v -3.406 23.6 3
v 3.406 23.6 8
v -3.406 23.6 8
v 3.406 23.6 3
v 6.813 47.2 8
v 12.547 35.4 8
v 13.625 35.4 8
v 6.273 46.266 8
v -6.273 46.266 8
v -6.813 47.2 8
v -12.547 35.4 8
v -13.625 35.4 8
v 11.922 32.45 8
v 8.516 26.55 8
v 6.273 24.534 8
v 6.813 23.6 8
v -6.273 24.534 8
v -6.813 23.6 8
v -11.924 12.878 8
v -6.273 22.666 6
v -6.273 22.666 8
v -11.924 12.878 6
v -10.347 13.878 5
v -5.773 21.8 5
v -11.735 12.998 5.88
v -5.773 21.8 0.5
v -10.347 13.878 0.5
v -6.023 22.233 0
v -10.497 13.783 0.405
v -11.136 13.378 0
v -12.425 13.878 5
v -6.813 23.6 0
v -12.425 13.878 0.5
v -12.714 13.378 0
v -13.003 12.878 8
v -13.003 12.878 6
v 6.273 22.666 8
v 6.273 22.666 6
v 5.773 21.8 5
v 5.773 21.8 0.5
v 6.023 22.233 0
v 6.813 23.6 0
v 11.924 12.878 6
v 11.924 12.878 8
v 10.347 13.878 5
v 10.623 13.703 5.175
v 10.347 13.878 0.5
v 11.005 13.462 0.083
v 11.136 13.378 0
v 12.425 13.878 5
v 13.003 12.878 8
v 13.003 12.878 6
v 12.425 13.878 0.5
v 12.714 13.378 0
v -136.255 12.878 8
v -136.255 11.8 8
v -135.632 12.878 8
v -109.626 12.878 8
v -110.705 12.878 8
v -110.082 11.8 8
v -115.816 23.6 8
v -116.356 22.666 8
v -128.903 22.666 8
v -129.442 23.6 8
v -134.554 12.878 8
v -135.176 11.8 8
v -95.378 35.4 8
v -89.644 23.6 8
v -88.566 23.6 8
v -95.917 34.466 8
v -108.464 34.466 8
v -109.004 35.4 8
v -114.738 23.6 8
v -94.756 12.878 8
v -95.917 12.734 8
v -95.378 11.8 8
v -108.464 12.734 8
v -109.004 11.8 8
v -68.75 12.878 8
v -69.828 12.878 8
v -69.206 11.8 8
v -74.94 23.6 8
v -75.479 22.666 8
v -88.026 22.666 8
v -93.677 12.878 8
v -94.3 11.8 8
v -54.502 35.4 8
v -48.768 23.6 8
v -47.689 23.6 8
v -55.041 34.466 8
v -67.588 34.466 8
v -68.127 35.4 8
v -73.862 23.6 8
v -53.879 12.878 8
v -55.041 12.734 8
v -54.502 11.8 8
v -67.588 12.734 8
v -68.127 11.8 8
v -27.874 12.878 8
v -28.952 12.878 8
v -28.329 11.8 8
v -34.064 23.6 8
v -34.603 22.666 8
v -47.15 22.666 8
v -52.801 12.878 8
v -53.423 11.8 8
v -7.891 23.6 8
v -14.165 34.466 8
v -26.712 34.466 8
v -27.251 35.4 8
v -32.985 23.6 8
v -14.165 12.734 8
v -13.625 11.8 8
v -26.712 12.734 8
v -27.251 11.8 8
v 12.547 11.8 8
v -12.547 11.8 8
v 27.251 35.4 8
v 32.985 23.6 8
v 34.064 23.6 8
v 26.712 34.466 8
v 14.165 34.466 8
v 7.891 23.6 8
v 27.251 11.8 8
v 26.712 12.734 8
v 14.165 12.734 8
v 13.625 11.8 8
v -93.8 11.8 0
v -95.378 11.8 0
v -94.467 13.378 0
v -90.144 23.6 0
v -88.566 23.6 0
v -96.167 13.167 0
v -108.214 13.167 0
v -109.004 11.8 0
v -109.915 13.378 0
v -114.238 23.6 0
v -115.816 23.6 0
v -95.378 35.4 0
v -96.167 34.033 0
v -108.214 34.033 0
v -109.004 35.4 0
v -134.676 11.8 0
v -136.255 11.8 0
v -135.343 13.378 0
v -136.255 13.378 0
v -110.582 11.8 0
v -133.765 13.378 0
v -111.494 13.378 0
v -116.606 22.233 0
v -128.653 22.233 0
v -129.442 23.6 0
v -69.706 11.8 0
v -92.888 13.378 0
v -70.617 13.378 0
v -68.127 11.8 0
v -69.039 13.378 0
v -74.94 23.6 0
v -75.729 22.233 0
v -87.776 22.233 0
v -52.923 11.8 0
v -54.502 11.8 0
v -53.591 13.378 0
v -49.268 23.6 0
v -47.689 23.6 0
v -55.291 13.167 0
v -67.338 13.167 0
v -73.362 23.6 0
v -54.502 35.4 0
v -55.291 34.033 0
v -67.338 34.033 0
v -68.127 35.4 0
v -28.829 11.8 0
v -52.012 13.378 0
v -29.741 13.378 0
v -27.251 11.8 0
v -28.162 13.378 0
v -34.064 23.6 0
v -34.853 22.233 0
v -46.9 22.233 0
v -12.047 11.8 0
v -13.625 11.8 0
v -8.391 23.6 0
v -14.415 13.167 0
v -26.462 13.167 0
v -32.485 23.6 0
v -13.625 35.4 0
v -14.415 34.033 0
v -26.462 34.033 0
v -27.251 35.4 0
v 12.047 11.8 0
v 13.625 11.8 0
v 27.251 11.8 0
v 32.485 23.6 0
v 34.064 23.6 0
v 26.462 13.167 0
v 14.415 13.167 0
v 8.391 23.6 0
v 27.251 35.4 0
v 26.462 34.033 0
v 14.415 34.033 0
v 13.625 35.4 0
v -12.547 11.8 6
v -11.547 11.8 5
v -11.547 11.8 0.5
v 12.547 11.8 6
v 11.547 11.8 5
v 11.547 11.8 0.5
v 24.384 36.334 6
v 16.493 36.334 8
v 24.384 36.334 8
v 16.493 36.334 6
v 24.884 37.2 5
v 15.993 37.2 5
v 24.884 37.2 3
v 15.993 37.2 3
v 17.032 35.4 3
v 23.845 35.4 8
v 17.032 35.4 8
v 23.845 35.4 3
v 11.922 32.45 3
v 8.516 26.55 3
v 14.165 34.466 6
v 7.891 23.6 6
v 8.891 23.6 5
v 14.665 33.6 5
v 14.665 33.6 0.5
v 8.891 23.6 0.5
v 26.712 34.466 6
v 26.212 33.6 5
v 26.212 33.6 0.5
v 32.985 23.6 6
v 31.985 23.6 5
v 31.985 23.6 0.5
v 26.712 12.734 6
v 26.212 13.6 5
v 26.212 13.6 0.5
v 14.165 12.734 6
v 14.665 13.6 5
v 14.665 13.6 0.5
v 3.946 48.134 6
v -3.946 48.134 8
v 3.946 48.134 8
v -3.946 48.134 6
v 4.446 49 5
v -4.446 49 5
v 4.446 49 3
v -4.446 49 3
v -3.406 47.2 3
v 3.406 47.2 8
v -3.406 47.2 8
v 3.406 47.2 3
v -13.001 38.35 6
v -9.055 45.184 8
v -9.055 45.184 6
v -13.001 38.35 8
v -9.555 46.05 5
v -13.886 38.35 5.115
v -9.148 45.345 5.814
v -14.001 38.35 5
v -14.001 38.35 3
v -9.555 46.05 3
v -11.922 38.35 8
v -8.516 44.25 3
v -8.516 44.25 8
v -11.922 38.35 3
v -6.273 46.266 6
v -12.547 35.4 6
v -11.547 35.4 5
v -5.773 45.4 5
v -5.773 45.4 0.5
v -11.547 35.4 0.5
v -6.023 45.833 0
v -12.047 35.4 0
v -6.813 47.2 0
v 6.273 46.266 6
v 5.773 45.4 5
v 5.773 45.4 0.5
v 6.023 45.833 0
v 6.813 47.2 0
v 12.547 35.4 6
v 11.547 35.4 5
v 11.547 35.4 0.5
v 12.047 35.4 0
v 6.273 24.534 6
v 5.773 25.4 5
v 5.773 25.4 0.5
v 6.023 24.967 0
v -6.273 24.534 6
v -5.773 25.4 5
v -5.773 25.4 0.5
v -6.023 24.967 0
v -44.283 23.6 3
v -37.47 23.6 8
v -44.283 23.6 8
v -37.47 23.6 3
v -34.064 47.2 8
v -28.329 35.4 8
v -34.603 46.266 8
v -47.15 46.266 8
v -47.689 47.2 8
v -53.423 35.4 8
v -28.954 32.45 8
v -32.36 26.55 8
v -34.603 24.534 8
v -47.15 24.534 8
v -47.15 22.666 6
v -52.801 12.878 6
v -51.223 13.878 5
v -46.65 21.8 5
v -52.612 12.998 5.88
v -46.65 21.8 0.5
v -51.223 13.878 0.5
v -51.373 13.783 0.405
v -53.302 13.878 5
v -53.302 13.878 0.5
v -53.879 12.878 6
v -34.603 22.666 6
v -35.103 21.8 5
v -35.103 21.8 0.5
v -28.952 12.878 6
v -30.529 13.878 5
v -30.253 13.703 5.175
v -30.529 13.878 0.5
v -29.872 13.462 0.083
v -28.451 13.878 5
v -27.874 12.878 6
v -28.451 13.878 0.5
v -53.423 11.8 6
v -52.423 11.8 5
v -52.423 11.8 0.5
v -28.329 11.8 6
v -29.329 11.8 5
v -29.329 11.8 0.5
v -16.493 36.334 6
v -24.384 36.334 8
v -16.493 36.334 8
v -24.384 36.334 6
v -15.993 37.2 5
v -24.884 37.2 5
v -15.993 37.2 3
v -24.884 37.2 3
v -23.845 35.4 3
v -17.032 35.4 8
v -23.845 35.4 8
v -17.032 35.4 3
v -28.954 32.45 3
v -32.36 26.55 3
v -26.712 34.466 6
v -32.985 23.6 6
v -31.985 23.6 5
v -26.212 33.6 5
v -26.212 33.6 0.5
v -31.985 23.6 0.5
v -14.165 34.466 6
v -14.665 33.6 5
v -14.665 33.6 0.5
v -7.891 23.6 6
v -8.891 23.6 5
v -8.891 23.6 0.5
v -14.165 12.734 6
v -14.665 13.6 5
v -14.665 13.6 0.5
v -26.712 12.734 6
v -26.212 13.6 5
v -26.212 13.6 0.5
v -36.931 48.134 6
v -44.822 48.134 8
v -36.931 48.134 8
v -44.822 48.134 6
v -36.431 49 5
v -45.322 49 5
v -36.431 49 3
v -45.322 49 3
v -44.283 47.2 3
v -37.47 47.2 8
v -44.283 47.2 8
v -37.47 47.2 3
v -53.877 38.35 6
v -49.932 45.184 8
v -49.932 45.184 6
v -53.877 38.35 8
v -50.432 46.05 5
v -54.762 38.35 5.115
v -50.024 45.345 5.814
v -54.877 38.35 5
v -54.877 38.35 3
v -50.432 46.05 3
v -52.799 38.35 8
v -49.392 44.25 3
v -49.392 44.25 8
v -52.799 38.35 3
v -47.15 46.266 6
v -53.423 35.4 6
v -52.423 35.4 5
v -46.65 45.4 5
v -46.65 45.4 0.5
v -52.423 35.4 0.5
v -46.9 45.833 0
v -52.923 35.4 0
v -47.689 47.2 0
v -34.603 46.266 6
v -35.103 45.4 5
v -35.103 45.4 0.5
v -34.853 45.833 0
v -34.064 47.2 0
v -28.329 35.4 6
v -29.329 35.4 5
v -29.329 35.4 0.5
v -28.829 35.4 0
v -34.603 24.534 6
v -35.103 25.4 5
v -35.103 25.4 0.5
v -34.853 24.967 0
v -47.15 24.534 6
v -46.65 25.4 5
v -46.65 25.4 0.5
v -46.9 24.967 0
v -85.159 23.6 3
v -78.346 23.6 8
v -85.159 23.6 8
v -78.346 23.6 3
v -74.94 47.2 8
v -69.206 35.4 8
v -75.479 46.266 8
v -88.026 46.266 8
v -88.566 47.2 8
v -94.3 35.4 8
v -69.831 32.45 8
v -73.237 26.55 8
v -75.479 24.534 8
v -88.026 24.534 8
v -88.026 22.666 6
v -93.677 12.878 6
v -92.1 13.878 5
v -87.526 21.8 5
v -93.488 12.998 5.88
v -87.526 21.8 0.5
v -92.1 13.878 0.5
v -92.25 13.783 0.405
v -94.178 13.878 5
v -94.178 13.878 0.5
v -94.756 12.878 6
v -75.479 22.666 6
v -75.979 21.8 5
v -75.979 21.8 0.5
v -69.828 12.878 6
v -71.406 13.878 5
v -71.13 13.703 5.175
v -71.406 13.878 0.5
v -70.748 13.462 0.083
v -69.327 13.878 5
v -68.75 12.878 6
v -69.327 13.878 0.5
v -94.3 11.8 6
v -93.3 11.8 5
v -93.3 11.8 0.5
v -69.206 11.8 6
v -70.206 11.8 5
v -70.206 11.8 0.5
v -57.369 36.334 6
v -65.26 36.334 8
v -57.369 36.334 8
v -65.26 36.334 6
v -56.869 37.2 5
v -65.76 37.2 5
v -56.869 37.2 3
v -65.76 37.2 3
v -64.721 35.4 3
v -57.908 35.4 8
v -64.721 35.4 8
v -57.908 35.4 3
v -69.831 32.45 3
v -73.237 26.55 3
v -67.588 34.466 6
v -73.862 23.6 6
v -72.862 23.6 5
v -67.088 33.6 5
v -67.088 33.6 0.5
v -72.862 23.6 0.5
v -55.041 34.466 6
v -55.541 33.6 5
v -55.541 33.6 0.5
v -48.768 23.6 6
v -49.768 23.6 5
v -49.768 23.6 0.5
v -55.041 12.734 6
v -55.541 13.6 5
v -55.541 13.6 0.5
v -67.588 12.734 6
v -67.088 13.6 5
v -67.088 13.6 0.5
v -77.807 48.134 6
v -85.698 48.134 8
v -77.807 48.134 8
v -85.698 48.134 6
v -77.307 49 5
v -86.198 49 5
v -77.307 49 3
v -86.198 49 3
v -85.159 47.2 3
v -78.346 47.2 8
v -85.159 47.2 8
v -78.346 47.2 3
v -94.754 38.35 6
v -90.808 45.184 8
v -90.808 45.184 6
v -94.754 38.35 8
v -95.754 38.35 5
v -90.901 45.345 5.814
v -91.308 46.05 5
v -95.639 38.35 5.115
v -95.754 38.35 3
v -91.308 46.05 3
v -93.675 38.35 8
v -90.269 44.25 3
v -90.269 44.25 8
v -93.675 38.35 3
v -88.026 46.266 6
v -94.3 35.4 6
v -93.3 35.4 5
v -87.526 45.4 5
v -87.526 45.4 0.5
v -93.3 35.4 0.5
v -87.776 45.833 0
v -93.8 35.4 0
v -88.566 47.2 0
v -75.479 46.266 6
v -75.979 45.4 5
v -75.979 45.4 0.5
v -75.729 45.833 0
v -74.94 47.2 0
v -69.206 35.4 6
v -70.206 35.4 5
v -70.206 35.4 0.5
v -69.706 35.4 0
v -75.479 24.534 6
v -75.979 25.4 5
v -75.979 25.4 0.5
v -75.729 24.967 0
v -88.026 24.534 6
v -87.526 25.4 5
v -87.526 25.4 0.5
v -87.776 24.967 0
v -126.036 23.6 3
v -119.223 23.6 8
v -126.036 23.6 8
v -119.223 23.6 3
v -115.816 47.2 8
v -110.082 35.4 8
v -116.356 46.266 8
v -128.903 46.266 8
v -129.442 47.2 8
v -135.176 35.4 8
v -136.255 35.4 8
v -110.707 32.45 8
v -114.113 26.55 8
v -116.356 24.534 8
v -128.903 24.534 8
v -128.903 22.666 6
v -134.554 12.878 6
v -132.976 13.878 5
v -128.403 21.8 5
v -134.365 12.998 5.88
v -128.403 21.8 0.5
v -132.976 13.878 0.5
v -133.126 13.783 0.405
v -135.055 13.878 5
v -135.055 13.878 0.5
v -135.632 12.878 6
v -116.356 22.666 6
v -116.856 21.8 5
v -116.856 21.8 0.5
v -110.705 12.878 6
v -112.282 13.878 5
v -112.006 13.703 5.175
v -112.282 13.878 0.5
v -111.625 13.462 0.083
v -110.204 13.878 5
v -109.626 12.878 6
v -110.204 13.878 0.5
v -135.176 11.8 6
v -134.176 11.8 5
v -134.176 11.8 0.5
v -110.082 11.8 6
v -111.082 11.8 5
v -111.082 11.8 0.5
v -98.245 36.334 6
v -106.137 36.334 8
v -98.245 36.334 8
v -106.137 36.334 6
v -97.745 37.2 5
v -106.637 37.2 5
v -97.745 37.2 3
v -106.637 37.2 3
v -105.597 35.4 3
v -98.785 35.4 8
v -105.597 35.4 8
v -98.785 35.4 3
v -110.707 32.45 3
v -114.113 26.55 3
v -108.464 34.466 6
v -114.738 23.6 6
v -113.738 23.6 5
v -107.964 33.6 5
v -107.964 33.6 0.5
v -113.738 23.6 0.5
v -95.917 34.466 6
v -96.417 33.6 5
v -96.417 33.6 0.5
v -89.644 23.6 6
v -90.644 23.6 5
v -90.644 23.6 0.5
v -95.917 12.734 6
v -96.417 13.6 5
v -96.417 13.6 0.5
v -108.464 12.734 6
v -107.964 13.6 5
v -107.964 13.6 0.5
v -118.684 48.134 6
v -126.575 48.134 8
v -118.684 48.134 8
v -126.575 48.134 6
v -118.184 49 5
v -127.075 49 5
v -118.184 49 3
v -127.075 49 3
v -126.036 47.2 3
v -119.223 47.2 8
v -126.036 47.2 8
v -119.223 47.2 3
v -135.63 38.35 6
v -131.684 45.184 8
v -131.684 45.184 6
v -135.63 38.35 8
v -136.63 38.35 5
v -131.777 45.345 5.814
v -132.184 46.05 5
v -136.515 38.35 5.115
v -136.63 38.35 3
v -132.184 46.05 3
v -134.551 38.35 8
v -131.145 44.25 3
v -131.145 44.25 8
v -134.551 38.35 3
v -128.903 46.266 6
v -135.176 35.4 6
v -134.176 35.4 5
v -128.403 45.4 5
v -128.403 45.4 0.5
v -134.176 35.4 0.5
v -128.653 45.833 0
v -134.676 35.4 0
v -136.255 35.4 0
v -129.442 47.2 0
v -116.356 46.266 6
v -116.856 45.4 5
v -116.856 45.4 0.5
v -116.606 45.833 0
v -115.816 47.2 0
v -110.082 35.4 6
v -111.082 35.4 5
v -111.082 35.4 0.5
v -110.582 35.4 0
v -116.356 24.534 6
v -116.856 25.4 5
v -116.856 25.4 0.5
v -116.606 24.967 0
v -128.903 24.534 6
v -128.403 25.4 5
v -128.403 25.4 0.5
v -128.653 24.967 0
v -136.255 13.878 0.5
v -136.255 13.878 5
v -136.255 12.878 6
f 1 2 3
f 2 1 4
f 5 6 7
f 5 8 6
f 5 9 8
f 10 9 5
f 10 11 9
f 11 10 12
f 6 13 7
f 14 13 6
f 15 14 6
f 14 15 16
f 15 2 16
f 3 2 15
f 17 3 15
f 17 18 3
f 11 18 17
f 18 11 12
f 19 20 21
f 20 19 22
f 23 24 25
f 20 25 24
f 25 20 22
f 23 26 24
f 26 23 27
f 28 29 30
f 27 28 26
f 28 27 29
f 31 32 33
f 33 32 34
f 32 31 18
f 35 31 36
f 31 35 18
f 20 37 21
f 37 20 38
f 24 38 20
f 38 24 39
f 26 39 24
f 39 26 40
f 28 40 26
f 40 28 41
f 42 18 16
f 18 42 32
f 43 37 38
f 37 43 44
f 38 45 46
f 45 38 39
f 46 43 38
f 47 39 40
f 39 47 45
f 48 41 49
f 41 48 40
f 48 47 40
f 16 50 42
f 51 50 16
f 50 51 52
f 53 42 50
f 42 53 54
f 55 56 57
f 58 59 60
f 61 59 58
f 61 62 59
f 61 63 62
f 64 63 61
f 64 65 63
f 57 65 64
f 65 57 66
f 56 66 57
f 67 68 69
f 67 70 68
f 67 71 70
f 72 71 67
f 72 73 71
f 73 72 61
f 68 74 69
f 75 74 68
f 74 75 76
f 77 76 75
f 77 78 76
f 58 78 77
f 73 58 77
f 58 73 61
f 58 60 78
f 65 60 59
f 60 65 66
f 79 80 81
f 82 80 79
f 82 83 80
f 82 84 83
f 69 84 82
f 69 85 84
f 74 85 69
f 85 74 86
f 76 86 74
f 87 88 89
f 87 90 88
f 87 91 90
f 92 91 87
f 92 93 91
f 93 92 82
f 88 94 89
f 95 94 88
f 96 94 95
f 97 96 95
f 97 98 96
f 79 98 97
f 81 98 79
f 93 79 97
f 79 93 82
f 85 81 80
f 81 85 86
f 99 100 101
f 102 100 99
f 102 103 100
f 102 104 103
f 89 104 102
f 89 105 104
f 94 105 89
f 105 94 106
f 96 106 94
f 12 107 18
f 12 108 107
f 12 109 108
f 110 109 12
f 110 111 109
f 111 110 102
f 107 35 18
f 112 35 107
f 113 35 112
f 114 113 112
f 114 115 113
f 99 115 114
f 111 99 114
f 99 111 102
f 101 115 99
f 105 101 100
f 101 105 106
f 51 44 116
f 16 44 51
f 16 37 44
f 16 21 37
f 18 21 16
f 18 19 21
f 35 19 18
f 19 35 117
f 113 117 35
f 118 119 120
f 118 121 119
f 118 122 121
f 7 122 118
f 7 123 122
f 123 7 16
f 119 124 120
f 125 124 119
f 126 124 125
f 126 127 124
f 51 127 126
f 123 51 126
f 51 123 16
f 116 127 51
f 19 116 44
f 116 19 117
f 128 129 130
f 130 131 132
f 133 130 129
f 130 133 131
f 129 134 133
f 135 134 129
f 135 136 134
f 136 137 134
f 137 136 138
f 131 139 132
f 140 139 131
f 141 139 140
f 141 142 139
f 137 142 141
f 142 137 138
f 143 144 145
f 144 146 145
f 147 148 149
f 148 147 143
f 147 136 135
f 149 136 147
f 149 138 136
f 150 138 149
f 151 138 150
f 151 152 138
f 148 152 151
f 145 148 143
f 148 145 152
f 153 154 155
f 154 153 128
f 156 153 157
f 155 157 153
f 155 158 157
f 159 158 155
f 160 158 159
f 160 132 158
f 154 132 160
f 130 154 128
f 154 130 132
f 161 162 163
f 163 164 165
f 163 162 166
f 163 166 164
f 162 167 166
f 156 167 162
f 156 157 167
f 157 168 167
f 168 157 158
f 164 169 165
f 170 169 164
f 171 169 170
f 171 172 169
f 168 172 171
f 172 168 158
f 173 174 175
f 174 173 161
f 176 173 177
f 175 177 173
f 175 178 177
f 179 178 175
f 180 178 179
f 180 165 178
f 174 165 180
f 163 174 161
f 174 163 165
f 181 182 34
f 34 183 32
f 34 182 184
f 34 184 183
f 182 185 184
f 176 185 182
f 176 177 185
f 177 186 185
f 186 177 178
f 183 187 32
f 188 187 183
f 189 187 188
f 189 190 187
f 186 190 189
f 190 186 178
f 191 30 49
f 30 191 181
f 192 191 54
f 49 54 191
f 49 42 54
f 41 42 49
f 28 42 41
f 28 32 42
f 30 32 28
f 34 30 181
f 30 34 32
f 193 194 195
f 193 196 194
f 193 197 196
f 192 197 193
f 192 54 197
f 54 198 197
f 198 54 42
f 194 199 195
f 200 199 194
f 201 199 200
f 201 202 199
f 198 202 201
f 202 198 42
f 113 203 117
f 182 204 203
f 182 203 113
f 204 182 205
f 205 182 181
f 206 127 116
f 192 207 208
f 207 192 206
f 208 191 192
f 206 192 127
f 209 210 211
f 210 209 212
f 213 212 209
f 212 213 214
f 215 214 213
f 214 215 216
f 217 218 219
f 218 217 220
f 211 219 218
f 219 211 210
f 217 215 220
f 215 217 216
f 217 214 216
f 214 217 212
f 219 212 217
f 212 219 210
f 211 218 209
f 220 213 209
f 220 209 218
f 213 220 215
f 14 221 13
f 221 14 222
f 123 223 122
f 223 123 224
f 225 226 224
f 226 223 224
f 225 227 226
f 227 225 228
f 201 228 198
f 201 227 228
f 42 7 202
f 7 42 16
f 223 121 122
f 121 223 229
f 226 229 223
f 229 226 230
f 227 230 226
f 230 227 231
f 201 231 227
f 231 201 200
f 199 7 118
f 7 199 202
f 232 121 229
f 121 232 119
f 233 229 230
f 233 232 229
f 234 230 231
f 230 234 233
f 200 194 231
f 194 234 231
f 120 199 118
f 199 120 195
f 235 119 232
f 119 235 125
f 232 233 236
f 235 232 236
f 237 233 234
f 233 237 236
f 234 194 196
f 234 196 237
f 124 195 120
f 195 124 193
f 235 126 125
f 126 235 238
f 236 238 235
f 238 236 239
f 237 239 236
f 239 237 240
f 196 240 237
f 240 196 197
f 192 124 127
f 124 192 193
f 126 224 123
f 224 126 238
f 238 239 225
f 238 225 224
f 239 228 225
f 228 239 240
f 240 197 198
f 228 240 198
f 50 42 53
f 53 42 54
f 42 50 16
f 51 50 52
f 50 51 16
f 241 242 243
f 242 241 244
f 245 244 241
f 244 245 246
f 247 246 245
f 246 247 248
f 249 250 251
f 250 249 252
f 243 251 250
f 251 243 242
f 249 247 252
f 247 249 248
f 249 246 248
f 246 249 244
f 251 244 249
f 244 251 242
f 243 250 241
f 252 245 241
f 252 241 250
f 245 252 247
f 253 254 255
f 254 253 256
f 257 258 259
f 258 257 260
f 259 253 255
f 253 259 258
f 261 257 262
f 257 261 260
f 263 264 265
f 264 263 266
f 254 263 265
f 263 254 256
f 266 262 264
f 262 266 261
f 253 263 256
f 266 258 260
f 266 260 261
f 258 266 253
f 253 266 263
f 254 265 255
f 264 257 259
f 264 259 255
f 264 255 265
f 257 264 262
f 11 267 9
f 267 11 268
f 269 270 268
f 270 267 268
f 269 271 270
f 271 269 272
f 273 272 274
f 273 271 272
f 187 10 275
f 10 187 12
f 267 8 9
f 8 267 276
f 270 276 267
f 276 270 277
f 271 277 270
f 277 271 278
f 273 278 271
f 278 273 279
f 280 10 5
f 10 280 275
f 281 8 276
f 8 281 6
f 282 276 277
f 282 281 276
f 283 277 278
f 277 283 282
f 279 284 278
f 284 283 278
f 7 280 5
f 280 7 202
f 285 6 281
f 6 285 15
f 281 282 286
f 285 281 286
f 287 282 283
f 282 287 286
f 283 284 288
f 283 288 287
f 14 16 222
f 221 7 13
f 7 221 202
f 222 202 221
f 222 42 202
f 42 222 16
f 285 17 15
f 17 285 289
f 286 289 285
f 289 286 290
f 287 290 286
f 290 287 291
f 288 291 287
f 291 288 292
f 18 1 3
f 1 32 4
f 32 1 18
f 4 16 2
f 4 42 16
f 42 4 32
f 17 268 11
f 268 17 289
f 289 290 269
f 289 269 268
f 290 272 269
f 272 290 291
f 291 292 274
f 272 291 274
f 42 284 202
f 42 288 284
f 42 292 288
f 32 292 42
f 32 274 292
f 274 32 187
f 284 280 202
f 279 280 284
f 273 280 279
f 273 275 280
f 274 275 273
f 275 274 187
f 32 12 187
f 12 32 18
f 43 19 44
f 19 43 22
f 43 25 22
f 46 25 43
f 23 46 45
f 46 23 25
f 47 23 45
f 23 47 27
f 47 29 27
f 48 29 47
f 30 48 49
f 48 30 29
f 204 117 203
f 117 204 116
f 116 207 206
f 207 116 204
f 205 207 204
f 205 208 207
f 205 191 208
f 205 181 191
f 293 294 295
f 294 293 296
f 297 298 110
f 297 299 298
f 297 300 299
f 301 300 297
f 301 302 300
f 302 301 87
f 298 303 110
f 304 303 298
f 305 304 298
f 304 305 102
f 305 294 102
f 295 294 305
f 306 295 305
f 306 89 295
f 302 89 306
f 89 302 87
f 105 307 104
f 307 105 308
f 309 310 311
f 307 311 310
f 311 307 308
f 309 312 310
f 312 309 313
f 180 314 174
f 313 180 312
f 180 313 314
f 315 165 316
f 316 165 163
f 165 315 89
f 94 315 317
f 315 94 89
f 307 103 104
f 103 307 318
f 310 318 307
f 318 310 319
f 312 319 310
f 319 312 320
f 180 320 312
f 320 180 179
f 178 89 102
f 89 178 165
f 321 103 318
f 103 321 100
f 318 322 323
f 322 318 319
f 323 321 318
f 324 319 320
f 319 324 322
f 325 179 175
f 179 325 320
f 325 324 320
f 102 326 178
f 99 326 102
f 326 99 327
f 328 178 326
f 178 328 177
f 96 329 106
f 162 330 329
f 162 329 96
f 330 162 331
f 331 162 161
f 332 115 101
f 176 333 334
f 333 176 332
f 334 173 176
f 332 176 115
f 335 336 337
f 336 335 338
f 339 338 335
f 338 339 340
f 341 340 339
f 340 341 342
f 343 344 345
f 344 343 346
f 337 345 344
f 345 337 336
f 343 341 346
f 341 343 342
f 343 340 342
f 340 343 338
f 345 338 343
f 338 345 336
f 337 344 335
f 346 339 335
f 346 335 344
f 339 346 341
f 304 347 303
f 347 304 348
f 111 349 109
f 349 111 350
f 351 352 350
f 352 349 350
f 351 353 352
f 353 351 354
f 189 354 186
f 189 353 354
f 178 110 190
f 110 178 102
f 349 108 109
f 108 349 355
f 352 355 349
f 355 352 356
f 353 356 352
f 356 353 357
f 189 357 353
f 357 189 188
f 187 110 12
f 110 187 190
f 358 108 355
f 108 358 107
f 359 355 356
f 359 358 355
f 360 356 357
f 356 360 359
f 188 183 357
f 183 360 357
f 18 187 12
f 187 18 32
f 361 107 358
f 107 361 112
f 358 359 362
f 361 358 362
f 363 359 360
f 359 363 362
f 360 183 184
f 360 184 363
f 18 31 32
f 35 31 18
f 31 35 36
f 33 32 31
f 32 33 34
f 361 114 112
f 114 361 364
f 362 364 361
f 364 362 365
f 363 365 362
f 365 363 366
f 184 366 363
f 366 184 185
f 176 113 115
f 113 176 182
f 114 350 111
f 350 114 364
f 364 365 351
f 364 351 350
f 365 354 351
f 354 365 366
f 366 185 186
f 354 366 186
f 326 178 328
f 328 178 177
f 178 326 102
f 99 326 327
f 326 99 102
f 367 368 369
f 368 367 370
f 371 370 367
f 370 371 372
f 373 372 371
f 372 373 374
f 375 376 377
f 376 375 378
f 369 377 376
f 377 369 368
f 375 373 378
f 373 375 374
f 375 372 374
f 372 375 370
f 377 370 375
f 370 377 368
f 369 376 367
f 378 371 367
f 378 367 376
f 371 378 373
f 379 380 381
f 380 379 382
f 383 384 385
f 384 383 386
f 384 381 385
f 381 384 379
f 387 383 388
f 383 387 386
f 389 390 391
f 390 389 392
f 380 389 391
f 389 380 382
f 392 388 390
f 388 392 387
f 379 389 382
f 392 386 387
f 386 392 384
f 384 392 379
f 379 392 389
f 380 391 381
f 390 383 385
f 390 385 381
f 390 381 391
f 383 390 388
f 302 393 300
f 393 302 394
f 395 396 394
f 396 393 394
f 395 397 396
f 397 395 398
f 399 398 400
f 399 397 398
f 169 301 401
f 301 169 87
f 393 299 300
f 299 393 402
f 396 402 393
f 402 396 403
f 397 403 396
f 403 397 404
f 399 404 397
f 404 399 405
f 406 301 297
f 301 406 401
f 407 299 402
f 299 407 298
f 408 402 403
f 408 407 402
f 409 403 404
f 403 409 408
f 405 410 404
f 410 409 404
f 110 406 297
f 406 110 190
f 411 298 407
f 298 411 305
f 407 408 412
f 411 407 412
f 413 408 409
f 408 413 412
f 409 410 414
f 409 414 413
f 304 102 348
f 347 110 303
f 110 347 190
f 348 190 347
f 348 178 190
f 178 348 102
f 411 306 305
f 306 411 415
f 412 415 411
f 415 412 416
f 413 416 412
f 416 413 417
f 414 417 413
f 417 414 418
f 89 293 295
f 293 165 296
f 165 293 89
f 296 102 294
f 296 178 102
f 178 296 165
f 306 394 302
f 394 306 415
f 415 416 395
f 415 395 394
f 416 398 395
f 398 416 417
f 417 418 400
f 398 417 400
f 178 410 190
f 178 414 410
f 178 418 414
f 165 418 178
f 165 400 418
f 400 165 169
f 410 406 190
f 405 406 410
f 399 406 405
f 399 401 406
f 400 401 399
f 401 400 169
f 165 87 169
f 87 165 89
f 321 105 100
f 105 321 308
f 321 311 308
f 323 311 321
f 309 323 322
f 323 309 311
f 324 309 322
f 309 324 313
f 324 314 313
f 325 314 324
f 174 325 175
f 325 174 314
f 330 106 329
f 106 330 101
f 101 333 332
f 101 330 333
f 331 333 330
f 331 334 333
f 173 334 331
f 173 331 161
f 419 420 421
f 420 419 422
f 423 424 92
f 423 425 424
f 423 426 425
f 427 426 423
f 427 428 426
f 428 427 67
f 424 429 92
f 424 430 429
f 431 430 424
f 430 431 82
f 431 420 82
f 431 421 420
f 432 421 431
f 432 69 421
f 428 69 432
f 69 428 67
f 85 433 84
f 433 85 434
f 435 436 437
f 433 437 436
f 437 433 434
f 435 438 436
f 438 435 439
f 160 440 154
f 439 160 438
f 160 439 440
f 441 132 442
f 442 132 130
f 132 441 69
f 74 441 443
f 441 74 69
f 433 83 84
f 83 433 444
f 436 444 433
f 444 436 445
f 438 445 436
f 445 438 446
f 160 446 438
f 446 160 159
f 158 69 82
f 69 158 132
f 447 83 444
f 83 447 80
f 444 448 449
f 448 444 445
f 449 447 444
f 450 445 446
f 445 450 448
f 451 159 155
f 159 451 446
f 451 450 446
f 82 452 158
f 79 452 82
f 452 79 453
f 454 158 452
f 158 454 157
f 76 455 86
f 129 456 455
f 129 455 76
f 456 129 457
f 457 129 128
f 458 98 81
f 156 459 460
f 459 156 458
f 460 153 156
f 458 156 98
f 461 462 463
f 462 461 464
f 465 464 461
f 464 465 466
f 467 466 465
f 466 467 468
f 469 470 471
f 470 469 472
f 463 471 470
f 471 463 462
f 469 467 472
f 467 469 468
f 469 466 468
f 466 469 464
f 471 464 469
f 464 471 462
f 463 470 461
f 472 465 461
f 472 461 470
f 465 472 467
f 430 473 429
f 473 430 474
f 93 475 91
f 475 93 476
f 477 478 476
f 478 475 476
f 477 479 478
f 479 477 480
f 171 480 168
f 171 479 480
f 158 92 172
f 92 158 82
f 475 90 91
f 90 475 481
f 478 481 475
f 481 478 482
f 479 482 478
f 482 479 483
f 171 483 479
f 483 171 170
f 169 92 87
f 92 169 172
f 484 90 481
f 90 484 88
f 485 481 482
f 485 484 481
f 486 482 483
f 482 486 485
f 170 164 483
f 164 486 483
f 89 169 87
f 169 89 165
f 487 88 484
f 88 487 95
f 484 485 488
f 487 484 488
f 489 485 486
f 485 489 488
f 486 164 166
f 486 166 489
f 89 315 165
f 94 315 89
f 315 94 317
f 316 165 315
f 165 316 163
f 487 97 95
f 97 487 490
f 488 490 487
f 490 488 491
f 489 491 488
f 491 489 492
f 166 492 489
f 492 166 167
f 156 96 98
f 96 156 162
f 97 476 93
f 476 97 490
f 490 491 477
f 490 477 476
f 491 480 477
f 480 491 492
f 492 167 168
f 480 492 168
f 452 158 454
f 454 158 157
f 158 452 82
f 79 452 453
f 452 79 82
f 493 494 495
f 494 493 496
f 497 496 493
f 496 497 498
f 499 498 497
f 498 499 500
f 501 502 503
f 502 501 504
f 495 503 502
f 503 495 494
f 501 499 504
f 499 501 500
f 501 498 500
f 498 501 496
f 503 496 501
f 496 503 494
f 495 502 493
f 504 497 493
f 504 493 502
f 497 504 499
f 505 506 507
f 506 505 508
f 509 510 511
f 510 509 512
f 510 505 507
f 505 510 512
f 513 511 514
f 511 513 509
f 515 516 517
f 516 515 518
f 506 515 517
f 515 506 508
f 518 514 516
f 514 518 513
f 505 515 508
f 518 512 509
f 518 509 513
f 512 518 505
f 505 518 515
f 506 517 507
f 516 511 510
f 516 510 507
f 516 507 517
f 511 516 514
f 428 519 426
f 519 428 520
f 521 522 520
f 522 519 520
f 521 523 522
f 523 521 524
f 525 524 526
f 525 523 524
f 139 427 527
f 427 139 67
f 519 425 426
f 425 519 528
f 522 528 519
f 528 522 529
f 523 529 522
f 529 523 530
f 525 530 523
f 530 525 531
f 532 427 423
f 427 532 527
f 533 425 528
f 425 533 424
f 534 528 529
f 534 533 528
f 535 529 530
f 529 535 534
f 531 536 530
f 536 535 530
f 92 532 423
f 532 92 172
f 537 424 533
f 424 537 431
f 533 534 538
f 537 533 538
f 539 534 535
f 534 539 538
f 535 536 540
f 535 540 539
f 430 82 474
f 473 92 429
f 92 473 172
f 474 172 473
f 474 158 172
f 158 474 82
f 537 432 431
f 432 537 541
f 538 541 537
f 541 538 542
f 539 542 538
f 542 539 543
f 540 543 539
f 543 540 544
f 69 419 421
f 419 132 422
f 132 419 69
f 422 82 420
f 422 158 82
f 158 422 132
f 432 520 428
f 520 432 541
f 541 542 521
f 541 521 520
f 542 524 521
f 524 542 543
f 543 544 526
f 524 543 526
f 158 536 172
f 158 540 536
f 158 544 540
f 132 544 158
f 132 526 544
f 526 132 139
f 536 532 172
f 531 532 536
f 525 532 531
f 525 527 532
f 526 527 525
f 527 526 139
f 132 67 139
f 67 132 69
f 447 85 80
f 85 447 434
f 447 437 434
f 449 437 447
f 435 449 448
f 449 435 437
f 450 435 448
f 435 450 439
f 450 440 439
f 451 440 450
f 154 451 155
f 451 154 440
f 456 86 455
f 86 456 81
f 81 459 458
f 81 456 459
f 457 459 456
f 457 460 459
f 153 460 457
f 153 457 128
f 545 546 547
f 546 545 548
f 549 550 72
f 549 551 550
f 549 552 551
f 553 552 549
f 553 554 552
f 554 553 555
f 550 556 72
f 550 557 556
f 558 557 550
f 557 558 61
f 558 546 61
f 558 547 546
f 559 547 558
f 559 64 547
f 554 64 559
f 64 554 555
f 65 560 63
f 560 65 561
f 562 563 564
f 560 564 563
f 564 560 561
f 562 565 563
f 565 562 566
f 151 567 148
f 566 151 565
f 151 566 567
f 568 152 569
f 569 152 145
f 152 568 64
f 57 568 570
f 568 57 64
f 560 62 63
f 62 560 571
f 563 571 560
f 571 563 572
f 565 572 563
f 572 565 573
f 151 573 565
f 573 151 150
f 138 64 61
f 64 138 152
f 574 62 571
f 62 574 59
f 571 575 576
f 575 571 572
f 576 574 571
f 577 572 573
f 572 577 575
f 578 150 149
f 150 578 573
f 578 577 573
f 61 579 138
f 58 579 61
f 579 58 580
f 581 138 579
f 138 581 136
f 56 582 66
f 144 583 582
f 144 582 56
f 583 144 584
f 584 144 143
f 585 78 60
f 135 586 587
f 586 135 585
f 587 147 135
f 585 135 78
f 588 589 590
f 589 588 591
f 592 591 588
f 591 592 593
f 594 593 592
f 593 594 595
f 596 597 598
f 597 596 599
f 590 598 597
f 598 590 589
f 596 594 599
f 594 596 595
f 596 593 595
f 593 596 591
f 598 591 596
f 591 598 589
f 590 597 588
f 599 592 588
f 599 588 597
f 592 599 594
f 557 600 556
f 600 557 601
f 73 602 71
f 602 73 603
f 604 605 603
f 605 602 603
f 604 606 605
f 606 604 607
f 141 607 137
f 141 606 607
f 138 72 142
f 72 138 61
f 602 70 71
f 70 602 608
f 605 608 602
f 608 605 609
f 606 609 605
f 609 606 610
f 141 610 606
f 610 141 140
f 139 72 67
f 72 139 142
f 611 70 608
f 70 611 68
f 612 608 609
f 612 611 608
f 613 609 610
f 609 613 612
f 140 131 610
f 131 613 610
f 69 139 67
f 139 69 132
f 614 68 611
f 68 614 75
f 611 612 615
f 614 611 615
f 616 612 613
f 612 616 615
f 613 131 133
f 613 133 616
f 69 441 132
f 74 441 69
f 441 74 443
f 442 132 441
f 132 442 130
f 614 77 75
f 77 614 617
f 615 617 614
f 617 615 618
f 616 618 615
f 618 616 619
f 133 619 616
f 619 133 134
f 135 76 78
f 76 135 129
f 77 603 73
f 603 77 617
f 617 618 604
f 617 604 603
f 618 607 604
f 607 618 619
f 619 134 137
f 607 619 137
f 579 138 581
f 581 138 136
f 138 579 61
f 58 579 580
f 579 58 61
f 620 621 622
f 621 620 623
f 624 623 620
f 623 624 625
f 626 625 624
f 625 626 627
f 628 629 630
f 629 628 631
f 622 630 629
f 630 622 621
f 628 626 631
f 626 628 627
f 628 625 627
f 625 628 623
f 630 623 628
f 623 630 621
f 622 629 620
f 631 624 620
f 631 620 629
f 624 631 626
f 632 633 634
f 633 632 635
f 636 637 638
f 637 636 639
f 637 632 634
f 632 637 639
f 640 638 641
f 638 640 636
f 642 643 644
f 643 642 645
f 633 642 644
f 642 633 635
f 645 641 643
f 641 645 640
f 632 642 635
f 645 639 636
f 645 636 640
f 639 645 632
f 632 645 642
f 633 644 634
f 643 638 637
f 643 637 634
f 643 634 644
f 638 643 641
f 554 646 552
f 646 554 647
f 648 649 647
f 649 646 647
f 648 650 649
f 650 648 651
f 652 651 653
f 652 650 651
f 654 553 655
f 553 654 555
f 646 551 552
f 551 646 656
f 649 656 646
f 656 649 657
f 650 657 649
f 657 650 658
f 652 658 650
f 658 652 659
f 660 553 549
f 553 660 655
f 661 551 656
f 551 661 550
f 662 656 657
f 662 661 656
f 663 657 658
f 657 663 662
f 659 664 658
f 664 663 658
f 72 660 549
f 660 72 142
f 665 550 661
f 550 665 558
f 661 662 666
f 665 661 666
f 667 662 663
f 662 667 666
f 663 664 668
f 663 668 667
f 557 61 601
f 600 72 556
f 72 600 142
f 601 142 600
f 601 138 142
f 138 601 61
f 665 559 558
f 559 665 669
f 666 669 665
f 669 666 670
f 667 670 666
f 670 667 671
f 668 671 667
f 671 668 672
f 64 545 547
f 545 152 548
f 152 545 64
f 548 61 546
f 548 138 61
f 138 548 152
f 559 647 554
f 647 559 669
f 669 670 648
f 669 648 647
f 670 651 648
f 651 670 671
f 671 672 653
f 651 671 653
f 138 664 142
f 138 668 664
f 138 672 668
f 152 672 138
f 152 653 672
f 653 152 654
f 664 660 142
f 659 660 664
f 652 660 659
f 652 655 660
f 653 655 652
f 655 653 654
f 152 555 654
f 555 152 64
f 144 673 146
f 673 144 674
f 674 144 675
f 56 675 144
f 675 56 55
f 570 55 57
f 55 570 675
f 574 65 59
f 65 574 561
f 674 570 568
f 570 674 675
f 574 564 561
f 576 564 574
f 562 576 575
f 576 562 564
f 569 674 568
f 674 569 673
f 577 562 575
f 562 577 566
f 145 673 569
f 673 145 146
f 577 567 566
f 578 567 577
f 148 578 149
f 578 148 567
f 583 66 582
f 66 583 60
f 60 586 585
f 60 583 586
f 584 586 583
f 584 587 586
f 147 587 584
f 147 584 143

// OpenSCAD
// file: _honeycomb_element.scad
$fn = 50;

radius = 13.6;
diameter = radius * 2;

h_inner = 10;
r_inner = h_inner * 2 / sqrt(3);

h_outer = 10 + 1.8;
r_outer = h_outer * 2 / sqrt(3);

h_thin = 10 + 1;
r_thin = h_thin * 2 / sqrt(3);

total_height = 8;

small_value = 0.1;

clips_height = 5;
clips_offset = 0.5;
clips_side_offset = 0.00;

module basic_polygon() {
  polygon(
    [
      [r_outer, total_height],
      [r_outer, 0],
      [r_inner + 0.5, 0],
      [r_inner, 0.5],
      [r_inner, total_height - 3],
      [r_inner + 1, total_height - 2],
      [r_inner + 1, total_height],
    ]
  );
}

module basic_model() {
  rotate_extrude($fn=6) {
    basic_polygon();
  }
}

module panel_with_clips(pin_1 = false, pin_2 = false, pin_3 = false, pin_4 = false, pin_5 = false, pin_6 = false, slot_1 = false, slot_2 = false, slot_3 = false, slot_4 = false, slot_5 = false, slot_6 = false) {

  difference() {
    basic_model();

    if (slot_1) {
      rotate([0, 0, 0])
        translate([0, -h_outer * 2, total_height - (clips_height + clips_offset) / 2])
          linear_extrude(height=clips_height + clips_offset, center=true)
            polygon([[clips_side_offset, h_outer / 2], [-clips_side_offset, h_outer / 2], [-r_outer / 2 - clips_side_offset, h_outer * 1.5], [r_outer / 2 + clips_side_offset, h_outer * 1.5]]);
    }

    if (slot_2) {
      rotate([0, 0, 60])
        translate([0, -h_outer * 2, total_height - (clips_height + clips_offset) / 2])
          linear_extrude(height=clips_height + clips_offset, center=true)
            polygon([[clips_side_offset, h_outer / 2], [-clips_side_offset, h_outer / 2], [-r_outer / 2 - clips_side_offset, h_outer * 1.5], [r_outer / 2 + clips_side_offset, h_outer * 1.5]]);
    }

    if (slot_3) {
      rotate([0, 0, 120])
        translate([0, -h_outer * 2, total_height - (clips_height + clips_offset) / 2])
          linear_extrude(height=clips_height + clips_offset, center=true)
            polygon([[clips_side_offset, h_outer / 2], [-clips_side_offset, h_outer / 2], [-r_outer / 2 - clips_side_offset, h_outer * 1.5], [r_outer / 2 + clips_side_offset, h_outer * 1.5]]);
    }

    if (slot_4) {
      rotate([0, 0, 180])
        translate([0, -h_outer * 2, total_height - (clips_height + clips_offset) / 2])
          linear_extrude(height=clips_height + clips_offset, center=true)
            polygon([[clips_side_offset, h_outer / 2], [-clips_side_offset, h_outer / 2], [-r_outer / 2 - clips_side_offset, h_outer * 1.5], [r_outer / 2 + clips_side_offset, h_outer * 1.5]]);
    }

    if (slot_5) {
      rotate([0, 0, 240])
        translate([0, -h_outer * 2, total_height - (clips_height + clips_offset) / 2])
          linear_extrude(height=clips_height + clips_offset, center=true)
            polygon([[clips_side_offset, h_outer / 2], [-clips_side_offset, h_outer / 2], [-r_outer / 2 - clips_side_offset, h_outer * 1.5], [r_outer / 2 + clips_side_offset, h_outer * 1.5]]);
    }

    if (slot_6) {
      rotate([0, 0, 300])
        translate([0, -h_outer * 2, total_height - (clips_height + clips_offset) / 2])
          linear_extrude(height=clips_height + clips_offset, center=true)
            polygon([[clips_side_offset, h_outer / 2], [-clips_side_offset, h_outer / 2], [-r_outer / 2 - clips_side_offset, h_outer * 1.5], [r_outer / 2 + clips_side_offset, h_outer * 1.5]]);
    }
  }

  if (pin_1) {
    intersection() {
      translate([0, -h_outer * 2, 0])
        basic_model();
      translate([0, 0, total_height - clips_height / 2]) {
        rotate([0, 0, -180])
          linear_extrude(height=clips_height, center=true)
            polygon([[0, h_outer / 2], [-r_outer / 2, h_outer * 1.5], [r_outer / 2, h_outer * 1.5]]);
      }
    }
  }

  if (pin_2) {
    intersection() {
      translate([r_outer * 1.5, -h_outer, 0])
        basic_model();
      translate([0, 0, total_height - clips_height / 2]) {
        rotate([0, 0, -120])
          linear_extrude(height=clips_height, center=true)
            polygon([[0, h_outer / 2], [-r_outer / 2, h_outer * 1.5], [r_outer / 2, h_outer * 1.5]]);
      }
    }
  }

  if (pin_3) {
    intersection() {
      translate([r_outer * 1.5, h_outer, 0])
        basic_model();
      translate([0, 0, total_height - clips_height / 2]) {
        rotate([0, 0, -60])
          linear_extrude(height=clips_height, center=true)
            polygon([[0, h_outer / 2], [-r_outer / 2, h_outer * 1.5], [r_outer / 2, h_outer * 1.5]]);
      }
    }
  }

  if (pin_4) {
    intersection() {
      translate([0, h_outer * 2, 0])
        basic_model();

      translate([0, 0, total_height - clips_height / 2]) {
        linear_extrude(height=clips_height, center=true)
          polygon([[0, h_outer / 2], [-r_outer / 2, h_outer * 1.5], [r_outer / 2, h_outer * 1.5]]);
      }
    }
  }

  if (pin_5) {
    intersection() {
      translate([-r_outer * 1.5, h_outer, 0])
        basic_model();
      translate([0, 0, total_height - clips_height / 2]) {
        rotate([0, 0, 60])
          linear_extrude(height=clips_height, center=true)
            polygon([[0, h_outer / 2], [-r_outer / 2, h_outer * 1.5], [r_outer / 2, h_outer * 1.5]]);
      }
    }
  }

  if (pin_6) {
    intersection() {
      translate([-r_outer * 1.5, -h_outer, 0])
        basic_model();

      translate([0, 0, total_height - clips_height / 2]) {
        rotate([0, 0, 120])
          linear_extrude(height=clips_height, center=true)
            polygon([[0, h_outer / 2], [-r_outer / 2, h_outer * 1.5], [r_outer / 2, h_outer * 1.5]]);
      }
    }
  }
}

// end _honeycomb_element.scad
// main file
$fn = 50;

h_outer = 10 + 1.8;
r_outer = h_outer * 2 / sqrt(3);

use <_honeycomb_element.scad>;

module perimeter_top_item() {
  intersection() {
    union() {
      translate([0, h_outer, 0])
        panel_with_clips(pin_4=true);
    }

    translate([0, 50 + h_outer, 0])
      cube([100, 100, 100], center=true);
  }

  translate([r_outer * 1.5, 2 * h_outer, 0])
    panel_with_clips(pin_4=true, pin_5=true);

  translate([-r_outer * 0, 3 * h_outer, 0])
    panel_with_clips(pin_4=true, pin_5=true);

  translate([0, -(h_outer - r_outer) + 2 * h_outer, 0])
    rotate([90, 0, -90])
      linear_extrude(height=r_outer * 2, center=true)
        basic_polygon();
}

module perimeter_bottom() {
  perimeter_top_item();

  translate([-3 * r_outer, 0, 0])
    perimeter_top_item();

  translate([-6 * r_outer, 0, 0])
    perimeter_top_item();

  translate([-9 * r_outer, 0, 0])
    perimeter_top_item();
}

perimeter_bottom();
